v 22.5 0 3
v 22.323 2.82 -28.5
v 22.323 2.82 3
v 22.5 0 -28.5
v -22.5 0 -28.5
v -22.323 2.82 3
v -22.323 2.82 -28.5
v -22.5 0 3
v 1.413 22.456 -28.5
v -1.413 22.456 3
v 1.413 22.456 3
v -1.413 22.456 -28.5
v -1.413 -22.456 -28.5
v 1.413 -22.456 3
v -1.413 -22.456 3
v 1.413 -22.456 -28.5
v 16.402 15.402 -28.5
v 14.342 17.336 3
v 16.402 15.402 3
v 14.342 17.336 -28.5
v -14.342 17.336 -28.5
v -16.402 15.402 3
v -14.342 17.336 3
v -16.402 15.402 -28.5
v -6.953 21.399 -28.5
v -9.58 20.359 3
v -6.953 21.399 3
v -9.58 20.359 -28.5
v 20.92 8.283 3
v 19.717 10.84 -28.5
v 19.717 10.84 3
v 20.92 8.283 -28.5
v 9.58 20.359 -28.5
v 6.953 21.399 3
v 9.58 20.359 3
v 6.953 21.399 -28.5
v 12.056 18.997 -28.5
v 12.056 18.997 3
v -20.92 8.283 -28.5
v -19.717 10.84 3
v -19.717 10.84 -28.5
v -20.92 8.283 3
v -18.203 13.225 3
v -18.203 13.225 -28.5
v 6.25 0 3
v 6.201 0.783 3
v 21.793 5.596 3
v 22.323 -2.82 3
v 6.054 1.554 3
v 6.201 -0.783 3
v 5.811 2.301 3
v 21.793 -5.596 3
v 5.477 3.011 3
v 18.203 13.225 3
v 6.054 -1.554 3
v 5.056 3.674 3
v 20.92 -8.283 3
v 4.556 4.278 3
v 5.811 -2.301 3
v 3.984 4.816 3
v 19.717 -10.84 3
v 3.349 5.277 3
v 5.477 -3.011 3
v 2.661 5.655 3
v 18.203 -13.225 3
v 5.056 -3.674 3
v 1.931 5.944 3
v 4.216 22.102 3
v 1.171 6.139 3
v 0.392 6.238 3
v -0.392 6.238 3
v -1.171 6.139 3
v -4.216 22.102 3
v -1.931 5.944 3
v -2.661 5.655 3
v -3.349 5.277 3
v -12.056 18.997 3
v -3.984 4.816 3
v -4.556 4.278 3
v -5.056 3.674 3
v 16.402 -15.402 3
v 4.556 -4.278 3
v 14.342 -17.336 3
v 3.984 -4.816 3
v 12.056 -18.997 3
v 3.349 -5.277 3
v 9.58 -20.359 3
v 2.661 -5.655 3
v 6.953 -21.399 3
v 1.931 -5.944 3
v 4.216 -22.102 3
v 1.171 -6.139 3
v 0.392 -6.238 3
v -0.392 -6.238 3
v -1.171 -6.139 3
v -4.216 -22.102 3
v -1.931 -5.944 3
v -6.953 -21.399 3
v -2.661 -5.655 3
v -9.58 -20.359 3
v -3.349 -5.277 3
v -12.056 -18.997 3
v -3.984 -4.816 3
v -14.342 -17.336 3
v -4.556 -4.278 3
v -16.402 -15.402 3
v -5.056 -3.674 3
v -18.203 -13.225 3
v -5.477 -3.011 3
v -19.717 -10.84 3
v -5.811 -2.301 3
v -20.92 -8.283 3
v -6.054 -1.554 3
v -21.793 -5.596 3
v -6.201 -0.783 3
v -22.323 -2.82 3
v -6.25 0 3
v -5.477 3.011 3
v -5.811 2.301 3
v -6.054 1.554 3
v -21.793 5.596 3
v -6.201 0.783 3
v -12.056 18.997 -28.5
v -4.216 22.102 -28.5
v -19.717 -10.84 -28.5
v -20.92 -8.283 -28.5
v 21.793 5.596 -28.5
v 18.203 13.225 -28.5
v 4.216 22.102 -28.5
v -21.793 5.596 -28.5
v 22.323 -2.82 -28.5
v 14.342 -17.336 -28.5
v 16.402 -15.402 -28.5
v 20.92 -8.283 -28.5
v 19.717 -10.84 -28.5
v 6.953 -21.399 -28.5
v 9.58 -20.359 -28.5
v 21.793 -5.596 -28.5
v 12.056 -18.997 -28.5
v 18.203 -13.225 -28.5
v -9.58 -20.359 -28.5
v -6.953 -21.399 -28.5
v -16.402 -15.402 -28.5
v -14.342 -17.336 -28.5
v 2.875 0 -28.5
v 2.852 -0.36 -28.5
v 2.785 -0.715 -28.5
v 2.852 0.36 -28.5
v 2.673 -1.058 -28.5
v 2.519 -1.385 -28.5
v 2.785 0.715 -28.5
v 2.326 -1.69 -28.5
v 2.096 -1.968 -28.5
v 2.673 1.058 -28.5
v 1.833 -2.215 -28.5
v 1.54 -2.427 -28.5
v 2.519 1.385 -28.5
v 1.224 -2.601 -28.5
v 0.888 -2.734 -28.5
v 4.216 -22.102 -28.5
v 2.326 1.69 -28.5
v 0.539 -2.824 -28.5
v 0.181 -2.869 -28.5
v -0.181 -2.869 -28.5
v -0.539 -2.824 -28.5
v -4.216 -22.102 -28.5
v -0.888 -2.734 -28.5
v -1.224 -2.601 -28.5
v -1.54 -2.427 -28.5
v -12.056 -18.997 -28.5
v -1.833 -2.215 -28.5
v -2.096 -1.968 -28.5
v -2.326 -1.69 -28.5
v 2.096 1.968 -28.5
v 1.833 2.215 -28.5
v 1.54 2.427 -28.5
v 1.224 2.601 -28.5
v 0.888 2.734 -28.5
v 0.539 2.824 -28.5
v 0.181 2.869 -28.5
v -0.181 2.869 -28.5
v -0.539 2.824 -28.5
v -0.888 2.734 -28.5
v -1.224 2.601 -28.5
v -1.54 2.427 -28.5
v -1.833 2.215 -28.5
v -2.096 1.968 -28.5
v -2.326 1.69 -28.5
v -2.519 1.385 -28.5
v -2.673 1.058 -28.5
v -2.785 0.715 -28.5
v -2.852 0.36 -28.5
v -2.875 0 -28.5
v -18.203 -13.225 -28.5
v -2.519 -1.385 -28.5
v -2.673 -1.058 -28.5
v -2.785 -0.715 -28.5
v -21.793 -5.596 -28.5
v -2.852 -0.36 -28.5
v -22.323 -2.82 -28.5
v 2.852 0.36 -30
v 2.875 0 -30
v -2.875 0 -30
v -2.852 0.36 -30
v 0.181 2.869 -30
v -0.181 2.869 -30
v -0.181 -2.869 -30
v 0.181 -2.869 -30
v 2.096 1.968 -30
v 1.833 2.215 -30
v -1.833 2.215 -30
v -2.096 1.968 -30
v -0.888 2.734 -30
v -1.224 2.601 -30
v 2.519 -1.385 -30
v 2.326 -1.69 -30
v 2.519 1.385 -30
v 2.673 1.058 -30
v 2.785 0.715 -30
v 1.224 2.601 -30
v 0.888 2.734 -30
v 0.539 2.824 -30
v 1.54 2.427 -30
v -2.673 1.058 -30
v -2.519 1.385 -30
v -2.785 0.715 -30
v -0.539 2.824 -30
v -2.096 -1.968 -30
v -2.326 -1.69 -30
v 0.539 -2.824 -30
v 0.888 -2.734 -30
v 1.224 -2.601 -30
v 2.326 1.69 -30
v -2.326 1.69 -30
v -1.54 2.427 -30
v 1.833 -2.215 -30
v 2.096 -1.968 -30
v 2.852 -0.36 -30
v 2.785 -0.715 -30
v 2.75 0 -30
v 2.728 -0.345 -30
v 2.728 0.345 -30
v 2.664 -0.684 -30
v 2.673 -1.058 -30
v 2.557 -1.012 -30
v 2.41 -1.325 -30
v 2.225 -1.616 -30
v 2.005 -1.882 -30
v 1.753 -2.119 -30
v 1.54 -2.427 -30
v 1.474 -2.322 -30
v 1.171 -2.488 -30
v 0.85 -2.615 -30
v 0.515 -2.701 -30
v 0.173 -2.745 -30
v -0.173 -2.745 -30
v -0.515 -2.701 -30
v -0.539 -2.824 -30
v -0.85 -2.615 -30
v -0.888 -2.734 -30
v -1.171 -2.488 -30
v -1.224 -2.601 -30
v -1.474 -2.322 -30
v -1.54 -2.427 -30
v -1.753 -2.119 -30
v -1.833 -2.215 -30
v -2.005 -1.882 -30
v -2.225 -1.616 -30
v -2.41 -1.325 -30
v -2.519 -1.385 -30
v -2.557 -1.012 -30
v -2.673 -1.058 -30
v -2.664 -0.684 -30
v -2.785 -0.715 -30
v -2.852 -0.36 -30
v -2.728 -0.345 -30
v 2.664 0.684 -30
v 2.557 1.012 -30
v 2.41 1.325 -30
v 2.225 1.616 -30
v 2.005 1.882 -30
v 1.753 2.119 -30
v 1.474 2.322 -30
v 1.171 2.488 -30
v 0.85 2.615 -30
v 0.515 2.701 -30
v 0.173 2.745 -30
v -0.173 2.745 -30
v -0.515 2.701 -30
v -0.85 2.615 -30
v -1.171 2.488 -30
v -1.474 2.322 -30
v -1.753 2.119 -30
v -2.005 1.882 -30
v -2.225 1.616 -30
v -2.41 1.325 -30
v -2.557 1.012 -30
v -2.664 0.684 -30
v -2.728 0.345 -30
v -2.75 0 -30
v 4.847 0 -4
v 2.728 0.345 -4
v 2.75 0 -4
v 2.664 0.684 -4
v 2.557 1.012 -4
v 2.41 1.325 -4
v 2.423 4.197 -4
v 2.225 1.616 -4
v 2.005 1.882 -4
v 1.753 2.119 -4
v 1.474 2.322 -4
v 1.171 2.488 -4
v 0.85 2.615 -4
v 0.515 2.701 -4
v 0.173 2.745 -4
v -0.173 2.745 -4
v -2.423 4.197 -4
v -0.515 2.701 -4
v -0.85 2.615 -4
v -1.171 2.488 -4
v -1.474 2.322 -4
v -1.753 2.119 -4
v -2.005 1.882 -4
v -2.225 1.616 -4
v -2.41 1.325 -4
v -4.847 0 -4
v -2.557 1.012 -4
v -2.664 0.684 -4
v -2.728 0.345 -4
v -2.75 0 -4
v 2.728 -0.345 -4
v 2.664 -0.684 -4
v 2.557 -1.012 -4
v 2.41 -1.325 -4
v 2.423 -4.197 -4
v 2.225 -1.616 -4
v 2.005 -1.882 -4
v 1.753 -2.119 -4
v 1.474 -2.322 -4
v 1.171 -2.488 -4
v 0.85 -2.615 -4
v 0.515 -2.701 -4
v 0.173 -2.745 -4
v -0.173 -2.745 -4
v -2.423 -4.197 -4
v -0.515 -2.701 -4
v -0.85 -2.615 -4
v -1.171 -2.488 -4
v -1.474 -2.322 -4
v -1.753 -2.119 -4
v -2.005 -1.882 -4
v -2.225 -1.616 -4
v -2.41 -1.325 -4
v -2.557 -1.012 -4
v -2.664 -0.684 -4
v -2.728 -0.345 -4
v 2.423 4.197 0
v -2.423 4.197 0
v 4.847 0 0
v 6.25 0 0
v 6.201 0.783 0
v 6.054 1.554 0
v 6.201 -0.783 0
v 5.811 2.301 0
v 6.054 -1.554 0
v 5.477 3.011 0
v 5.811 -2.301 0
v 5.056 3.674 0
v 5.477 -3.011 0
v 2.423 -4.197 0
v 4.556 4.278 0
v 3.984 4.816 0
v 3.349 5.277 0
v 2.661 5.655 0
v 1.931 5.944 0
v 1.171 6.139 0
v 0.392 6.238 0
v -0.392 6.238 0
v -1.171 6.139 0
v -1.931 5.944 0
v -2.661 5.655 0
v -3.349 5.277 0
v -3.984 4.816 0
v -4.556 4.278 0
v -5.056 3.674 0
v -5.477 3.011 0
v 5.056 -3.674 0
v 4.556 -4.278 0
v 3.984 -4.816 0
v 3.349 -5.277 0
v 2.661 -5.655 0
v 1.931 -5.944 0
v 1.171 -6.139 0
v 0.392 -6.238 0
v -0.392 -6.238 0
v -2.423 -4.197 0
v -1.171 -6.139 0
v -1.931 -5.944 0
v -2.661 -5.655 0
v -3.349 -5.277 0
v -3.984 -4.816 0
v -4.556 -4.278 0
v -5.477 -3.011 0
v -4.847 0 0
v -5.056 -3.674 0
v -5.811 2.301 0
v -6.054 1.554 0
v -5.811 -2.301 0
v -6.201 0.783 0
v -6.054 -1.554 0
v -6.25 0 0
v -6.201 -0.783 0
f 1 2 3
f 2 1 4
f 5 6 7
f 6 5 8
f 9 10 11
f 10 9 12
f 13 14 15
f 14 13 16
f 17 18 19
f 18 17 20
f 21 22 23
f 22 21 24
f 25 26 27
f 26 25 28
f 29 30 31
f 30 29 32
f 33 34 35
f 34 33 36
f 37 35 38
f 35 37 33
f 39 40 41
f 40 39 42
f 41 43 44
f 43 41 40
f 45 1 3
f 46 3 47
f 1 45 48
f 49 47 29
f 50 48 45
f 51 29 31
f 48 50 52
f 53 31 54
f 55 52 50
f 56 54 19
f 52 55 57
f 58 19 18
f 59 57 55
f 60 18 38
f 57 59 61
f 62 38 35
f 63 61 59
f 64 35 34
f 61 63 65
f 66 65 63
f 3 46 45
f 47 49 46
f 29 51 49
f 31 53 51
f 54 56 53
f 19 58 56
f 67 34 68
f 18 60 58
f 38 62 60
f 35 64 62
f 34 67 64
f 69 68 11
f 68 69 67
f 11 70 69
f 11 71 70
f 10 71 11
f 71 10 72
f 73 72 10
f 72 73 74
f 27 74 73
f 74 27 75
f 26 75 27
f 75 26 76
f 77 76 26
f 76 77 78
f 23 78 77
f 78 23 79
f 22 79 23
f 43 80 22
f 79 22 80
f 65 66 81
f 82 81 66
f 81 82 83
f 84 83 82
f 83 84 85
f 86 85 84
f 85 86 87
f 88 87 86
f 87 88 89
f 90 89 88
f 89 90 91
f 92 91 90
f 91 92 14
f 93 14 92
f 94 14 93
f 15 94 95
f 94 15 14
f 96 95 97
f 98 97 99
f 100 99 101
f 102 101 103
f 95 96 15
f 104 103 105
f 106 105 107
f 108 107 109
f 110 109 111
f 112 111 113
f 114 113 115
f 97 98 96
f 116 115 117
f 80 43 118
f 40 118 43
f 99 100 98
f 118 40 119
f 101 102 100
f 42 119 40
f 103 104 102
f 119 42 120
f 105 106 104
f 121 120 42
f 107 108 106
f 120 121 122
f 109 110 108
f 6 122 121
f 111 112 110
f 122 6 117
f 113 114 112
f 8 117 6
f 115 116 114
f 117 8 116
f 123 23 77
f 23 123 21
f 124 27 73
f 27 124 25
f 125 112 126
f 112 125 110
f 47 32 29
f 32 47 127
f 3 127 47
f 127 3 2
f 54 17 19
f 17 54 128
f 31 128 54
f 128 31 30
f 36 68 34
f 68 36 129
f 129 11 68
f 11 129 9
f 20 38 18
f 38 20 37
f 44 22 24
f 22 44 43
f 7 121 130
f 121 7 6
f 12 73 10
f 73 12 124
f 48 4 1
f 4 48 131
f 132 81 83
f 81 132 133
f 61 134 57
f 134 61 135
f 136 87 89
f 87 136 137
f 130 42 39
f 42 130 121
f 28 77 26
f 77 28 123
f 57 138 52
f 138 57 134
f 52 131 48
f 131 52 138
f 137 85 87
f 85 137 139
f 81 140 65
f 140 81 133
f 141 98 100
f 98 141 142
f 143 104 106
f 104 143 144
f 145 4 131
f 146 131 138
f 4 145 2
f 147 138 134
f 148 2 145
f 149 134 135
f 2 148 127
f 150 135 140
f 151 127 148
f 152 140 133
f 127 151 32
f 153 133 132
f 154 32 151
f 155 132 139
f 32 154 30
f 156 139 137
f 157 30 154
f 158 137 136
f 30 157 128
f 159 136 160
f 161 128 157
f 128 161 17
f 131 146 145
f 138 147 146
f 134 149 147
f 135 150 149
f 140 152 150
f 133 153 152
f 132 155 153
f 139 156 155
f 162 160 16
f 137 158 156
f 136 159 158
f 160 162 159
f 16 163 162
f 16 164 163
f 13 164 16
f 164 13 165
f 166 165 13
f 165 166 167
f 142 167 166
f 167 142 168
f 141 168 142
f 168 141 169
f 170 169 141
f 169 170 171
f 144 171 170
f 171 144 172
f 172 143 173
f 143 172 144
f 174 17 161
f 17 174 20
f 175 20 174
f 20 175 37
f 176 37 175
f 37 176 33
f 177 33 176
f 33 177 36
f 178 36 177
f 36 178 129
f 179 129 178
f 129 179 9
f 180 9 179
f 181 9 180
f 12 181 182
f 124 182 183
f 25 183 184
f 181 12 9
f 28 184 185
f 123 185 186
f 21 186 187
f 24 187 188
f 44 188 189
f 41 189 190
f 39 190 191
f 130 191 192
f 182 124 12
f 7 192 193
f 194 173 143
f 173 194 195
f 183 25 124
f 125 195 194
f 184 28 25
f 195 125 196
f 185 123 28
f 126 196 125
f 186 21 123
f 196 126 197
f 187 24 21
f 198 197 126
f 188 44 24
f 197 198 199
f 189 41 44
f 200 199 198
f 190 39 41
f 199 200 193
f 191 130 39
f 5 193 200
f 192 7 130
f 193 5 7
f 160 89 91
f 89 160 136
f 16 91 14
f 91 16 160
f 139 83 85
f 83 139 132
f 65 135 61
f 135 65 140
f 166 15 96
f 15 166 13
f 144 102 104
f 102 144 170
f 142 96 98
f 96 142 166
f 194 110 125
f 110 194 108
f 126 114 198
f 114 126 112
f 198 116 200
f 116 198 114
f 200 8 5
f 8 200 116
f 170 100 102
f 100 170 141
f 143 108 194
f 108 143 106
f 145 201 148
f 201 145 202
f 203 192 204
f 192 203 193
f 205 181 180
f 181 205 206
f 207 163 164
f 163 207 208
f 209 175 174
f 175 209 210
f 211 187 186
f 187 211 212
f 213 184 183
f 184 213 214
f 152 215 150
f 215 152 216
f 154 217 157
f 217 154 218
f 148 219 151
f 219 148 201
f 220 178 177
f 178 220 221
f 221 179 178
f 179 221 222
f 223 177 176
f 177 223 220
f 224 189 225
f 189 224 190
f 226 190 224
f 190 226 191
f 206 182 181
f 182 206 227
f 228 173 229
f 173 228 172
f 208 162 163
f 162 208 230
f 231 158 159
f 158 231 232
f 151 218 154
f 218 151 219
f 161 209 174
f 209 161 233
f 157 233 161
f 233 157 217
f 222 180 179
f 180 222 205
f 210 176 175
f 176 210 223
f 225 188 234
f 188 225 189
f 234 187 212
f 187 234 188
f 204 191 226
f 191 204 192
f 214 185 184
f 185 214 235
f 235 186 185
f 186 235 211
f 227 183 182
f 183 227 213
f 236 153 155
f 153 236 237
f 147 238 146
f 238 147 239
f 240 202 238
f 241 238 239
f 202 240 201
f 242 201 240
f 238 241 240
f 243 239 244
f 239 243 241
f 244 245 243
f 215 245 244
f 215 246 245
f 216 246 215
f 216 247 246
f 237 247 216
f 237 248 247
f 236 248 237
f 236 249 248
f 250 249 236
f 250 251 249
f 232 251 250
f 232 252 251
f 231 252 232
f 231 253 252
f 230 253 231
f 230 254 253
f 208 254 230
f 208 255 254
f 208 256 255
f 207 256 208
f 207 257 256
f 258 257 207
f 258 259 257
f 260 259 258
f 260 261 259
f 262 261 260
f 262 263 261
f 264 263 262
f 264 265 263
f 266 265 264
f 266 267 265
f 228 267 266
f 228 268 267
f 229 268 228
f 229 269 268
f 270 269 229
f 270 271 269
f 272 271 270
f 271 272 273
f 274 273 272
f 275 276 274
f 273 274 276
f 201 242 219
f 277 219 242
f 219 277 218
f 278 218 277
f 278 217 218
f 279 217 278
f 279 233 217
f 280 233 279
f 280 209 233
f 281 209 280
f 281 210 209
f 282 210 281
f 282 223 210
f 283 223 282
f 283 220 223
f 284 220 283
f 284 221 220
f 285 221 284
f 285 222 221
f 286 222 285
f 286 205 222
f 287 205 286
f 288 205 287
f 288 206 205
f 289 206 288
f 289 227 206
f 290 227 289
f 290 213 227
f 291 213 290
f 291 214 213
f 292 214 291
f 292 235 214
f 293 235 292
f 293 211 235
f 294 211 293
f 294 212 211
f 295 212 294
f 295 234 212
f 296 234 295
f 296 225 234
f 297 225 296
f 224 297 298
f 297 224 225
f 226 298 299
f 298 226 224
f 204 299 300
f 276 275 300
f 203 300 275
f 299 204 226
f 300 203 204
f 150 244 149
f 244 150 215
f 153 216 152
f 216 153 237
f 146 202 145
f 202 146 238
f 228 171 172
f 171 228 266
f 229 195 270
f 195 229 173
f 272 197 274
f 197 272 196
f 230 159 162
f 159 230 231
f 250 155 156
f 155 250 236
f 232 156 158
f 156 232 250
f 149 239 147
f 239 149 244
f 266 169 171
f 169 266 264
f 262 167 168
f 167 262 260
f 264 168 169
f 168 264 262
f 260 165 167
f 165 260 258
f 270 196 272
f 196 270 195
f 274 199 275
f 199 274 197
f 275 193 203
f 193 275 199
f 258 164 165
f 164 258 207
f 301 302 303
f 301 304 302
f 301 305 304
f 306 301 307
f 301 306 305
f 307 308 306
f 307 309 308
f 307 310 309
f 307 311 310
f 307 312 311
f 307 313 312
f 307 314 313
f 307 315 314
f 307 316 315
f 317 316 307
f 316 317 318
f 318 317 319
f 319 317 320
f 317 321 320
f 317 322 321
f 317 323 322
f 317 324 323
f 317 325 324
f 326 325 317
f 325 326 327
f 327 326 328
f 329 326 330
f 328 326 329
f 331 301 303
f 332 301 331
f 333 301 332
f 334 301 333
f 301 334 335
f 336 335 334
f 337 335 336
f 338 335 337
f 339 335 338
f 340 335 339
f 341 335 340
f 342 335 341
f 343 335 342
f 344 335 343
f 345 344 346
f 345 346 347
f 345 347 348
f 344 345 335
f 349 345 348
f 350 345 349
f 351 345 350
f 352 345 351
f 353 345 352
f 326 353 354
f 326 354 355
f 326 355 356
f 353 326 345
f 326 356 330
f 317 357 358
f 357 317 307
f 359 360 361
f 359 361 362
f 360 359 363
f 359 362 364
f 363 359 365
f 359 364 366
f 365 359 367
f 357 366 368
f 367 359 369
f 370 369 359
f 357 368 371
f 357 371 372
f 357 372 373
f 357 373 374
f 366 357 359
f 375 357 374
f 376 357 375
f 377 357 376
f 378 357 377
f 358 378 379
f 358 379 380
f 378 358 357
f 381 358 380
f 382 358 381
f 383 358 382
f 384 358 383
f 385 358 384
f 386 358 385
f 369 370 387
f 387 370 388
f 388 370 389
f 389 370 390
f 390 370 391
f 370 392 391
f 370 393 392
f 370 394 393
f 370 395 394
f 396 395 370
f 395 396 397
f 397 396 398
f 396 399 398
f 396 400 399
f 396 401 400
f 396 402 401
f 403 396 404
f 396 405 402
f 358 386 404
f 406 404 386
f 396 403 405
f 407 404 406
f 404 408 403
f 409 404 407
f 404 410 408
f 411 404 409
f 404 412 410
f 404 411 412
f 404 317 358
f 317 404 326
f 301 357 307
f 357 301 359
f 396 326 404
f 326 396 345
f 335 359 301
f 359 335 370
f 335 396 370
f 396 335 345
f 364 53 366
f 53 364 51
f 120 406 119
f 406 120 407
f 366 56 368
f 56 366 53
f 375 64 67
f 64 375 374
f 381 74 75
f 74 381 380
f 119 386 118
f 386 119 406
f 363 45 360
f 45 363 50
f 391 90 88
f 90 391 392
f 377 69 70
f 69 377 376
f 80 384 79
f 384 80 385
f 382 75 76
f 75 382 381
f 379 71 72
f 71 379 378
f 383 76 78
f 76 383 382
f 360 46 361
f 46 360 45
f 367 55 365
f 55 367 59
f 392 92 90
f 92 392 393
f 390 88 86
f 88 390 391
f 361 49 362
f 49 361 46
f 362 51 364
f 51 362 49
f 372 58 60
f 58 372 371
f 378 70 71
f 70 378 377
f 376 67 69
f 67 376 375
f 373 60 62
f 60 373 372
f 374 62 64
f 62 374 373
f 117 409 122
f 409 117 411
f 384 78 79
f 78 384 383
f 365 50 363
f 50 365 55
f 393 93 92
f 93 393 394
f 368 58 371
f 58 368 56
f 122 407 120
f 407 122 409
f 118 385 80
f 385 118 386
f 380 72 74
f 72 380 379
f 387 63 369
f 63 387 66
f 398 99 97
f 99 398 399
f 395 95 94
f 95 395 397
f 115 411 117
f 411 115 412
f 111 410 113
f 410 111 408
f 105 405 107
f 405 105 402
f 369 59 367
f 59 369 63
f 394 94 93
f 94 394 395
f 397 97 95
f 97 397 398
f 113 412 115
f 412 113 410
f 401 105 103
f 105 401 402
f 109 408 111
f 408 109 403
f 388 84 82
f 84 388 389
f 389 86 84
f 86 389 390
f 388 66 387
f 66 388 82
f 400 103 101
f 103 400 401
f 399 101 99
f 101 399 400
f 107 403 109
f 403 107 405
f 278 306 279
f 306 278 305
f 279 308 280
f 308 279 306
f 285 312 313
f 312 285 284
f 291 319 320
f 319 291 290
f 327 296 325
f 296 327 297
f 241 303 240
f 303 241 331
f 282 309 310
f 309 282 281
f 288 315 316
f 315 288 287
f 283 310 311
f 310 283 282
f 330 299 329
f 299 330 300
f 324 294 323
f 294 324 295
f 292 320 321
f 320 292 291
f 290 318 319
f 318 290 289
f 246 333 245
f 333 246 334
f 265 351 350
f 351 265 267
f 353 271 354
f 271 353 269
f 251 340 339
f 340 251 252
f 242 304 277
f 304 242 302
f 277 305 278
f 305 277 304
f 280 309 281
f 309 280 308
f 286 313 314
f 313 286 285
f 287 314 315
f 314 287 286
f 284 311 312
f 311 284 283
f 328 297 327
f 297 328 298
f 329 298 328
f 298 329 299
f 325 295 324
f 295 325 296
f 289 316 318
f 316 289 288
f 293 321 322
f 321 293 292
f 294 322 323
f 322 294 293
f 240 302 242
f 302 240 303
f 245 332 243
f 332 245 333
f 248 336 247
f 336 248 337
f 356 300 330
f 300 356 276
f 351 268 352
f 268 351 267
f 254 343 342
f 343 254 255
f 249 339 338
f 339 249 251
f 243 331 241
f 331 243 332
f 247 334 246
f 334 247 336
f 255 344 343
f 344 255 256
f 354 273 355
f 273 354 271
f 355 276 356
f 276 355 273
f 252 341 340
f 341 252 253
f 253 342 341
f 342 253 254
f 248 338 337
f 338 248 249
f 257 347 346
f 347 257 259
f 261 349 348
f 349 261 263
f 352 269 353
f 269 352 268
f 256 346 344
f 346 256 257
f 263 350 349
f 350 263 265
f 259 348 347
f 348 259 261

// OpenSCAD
$fn = 50;


difference() {
	union() {
		translate(v = [0, 0, -28.5000000000]) {
			cylinder(h = 31.5000000000, r = 22.5000000000);
		}
		#translate(v = [0, 0, -30.0000000000]) {
			cylinder(h = 30, r = 2.8750000000);
		}
	}
	union() {
		translate(v = [0, 0, 0]) {
			rotate(a = [0, 0, 0]) {
				difference() {
					union() {
						translate(v = [0, 0, -4]) {
							linear_extrude(height = 4) {
								polygon(points = [[4.8468000000, 0.0000000000], [2.4234000000, 4.1974519271], [-2.4234000000, 4.1974519271], [-4.8468000000, 0.0000000000], [-2.4234000000, -4.1974519271], [2.4234000000, -4.1974519271]]);
							}
						}
					}
					union();
				}
			}
		}
		#cylinder(h = 3, r = 6.2500000000);
		#translate(v = [0, 0, -100.0000000000]) {
			cylinder(h = 200, r = 2.7500000000);
		}
	}
}
